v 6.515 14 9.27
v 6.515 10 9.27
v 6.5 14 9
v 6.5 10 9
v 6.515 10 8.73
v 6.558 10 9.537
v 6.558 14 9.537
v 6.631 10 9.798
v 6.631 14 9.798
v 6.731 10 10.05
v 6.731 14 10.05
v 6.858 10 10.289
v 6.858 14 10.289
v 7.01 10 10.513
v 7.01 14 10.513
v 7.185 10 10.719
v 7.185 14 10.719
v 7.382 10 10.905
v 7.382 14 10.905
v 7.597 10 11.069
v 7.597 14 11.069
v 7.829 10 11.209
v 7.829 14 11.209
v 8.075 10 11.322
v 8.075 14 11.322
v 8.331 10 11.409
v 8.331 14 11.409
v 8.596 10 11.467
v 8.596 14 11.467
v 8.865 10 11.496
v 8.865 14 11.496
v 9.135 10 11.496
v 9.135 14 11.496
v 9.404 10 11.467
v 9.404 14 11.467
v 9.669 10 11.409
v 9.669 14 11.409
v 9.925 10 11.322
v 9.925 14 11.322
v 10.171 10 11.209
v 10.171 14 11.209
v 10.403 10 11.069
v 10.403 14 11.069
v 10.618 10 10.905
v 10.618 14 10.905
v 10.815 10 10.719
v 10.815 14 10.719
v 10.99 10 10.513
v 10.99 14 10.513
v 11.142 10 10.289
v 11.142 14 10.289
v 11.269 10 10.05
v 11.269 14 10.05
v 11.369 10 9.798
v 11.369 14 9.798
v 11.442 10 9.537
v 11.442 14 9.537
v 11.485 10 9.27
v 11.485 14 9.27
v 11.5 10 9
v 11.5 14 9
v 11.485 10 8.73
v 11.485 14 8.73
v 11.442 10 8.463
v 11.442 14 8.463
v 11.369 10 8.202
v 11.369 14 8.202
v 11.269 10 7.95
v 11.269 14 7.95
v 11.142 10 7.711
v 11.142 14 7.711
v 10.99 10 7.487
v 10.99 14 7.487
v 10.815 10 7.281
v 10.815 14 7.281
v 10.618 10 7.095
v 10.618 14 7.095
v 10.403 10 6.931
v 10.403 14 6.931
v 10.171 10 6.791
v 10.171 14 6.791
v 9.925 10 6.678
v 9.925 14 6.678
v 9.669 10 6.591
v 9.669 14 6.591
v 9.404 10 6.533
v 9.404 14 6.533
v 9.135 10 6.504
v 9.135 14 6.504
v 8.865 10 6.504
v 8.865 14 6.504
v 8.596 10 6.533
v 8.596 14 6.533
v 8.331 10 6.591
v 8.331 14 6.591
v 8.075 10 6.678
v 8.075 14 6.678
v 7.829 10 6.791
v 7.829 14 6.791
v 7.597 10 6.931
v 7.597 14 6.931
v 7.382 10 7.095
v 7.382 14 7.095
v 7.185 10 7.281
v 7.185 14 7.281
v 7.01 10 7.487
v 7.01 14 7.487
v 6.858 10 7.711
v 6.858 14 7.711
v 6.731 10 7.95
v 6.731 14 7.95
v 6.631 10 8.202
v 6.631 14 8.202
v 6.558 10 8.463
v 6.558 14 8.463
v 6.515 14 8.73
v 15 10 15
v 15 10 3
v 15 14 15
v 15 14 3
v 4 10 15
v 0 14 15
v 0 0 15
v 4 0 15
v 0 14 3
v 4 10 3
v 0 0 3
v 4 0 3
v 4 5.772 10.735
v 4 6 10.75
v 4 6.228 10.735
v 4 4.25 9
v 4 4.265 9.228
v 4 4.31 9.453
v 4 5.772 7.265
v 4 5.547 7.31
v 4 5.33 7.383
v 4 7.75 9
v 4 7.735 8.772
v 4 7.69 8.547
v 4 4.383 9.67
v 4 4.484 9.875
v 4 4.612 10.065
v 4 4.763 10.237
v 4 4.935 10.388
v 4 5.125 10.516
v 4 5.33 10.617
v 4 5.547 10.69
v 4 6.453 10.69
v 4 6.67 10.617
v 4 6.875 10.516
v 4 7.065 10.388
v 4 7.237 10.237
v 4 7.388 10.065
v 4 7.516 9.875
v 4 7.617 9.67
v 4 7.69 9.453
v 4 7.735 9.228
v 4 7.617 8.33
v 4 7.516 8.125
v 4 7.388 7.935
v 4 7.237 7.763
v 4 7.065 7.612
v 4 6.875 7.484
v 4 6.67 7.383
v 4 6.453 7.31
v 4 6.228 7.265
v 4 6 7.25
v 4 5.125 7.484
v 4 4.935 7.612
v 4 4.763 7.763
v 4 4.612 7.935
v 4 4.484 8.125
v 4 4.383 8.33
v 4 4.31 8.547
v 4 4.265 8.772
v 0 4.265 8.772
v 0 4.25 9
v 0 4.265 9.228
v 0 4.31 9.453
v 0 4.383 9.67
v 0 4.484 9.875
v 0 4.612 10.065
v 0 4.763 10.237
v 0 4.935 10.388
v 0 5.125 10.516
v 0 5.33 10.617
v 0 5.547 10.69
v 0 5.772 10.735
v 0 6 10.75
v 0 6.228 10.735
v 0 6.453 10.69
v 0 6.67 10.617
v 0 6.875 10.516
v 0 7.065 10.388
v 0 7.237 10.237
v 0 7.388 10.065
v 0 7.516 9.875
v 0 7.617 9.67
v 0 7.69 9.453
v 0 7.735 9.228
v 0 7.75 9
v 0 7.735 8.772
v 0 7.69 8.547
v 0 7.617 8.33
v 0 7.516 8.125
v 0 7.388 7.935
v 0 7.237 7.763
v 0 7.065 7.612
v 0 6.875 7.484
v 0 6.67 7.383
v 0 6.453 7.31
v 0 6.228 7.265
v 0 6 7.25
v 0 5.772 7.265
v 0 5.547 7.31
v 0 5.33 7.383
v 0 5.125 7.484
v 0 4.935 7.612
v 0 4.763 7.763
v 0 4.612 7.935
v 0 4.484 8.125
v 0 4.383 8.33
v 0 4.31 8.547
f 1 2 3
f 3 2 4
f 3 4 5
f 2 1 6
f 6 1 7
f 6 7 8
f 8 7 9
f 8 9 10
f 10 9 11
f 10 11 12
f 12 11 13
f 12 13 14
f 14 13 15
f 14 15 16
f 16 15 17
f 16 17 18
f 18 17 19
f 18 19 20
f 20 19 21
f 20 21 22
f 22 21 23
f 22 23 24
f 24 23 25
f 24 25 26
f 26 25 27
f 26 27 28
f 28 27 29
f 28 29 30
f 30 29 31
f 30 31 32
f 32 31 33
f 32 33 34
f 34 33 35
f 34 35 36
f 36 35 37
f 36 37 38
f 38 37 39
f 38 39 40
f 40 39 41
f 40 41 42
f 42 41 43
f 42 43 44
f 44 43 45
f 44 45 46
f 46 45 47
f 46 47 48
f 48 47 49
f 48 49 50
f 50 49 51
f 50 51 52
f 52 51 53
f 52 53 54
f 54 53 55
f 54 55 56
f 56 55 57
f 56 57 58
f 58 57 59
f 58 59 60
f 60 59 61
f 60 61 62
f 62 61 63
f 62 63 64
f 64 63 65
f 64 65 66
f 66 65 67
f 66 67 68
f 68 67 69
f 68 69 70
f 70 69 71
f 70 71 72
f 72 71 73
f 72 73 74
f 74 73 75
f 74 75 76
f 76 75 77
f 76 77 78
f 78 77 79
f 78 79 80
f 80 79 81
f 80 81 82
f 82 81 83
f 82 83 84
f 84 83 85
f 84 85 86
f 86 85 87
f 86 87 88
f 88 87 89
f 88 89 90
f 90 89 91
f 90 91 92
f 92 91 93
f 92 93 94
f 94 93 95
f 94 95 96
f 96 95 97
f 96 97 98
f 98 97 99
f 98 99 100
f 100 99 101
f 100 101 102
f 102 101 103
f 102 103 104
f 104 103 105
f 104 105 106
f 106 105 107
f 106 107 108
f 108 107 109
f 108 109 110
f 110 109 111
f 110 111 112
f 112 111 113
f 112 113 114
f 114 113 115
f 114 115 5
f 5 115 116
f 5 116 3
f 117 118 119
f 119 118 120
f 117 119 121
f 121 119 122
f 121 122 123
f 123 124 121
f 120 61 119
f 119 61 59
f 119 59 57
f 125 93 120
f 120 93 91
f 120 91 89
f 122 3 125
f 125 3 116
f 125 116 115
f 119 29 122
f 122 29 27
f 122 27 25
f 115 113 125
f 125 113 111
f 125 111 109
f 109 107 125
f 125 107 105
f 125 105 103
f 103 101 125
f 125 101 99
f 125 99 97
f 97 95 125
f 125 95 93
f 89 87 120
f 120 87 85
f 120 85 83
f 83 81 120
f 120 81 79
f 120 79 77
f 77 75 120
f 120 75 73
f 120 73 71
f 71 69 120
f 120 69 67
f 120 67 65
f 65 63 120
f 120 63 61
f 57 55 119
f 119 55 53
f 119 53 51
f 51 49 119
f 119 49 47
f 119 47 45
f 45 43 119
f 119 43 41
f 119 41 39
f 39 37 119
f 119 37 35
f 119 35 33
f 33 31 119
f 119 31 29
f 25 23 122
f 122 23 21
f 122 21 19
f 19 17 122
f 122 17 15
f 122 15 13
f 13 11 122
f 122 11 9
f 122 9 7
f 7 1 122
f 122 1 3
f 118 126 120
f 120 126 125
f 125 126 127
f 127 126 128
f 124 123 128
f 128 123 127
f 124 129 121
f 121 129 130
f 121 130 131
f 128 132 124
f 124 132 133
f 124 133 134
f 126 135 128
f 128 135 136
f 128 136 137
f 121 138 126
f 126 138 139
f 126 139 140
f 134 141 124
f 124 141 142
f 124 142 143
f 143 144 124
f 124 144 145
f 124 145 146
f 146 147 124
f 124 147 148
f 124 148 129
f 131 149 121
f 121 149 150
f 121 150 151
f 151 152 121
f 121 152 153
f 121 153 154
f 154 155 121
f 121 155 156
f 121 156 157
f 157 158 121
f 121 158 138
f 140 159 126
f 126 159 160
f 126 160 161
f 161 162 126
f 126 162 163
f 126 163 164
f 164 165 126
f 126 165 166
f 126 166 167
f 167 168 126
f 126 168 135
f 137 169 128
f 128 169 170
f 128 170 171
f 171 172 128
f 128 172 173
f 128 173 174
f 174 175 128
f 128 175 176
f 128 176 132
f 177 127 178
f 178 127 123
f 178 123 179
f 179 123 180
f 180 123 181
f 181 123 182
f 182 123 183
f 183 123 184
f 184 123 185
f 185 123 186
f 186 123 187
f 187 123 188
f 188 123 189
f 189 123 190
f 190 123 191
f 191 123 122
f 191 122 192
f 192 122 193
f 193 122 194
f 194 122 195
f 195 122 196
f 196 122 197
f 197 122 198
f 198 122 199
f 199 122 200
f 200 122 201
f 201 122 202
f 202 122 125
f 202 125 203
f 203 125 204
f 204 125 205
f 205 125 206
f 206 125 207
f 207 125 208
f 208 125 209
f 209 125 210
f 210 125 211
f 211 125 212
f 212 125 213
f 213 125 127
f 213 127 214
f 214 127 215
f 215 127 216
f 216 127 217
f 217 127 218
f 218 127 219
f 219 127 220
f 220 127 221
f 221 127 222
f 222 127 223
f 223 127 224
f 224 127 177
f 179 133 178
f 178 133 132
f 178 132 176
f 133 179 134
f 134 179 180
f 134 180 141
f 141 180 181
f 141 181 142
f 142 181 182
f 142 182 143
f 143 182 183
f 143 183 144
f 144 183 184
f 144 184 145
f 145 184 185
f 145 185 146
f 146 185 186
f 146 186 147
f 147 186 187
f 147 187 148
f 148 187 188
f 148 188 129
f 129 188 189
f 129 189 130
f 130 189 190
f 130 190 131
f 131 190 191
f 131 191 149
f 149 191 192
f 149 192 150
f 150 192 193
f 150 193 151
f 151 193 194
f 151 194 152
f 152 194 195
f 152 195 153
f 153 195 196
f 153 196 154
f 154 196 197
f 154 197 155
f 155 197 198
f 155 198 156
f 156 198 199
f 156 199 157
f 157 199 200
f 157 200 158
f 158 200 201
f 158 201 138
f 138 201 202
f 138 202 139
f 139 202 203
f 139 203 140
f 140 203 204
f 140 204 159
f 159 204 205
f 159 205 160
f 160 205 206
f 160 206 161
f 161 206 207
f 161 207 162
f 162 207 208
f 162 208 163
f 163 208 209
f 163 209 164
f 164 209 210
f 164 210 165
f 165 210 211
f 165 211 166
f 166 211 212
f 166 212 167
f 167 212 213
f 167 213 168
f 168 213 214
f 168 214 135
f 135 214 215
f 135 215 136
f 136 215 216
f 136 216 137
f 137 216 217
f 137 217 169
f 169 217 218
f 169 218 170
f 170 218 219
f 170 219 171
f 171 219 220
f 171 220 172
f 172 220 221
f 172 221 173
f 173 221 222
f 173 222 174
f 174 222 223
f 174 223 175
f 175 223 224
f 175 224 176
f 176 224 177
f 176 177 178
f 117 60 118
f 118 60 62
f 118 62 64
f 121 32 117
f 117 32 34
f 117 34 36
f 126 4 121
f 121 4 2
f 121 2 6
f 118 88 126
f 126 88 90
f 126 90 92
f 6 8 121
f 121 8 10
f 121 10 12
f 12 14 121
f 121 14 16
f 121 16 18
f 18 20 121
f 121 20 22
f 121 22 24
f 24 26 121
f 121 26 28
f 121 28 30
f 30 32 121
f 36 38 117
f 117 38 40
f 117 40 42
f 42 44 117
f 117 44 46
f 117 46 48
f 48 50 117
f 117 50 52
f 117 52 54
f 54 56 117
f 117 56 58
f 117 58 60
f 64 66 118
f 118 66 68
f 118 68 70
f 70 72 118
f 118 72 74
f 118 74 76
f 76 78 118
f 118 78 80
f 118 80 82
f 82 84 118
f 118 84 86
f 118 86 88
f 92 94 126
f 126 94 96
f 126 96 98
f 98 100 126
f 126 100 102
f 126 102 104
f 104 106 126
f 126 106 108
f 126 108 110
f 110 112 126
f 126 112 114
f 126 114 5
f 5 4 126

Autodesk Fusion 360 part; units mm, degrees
sketch "Szkic3" plane through (0, 0, 0) normal (0, 0, 1) x (1, 0, 0)
  line L0 (0, 0) -> (4, 0)
  line L1 (4, 0) -> (4, 10)
  line L2 (4, 10) -> (25, 10)
  line L3 (25, 10) -> (25, 14)
  line L4 (25, 14) -> (0, 14)
  line L5 (0, 14) -> (0, 0)
extrude "Wyciągnięcie proste3" add sketch "Szkic3" along normal blind 55
sketch "Szkic4" plane through (4, 0, 0) normal (1, 0, 0) x (0, 1, 0)
  line L0 (0, 0) -> (10, 0)
  line L1 (10, 0) -> (10, 55)
  line L2 (10, 55) -> (0, 55)
  line L3 (0, 55) -> (0, 0)
  circle A0 centre (6, 9) radius 1.75
  circle A1 centre (6, 47) radius 1.75
  dimension "d19" = 38
  dimension "d20" = 3.5
  dimension "d21" = 3.5
extrude "Wyciągnięcie proste4" cut sketch "Szkic4" against normal blind 4 contours A0 | A1
sketch "Szkic5" plane through (25, 0, 0) normal (1, 0, 0) x (0, 1, 0)
  line L0 (10, 0) -> (14, 0)
  line L1 (14, 0) -> (14, 55)
  line L2 (14, 55) -> (10, 55)
  line L3 (10, 55) -> (10, 0)
  line L4 (14, 55) -> (0, 55)
  line L5 (0, 55) -> (0, 15)
  line L6 (0, 15) -> (14, 15)
  line L7 (14, 15) -> (14, 55)
  line L8 (14, 3) -> (0, 3)
  line L9 (0, 3) -> (0, 0)
  line L10 (0, 0) -> (14, 0)
  line L11 (14, 0) -> (14, 3)
extrude "Wyciągnięcie proste5" cut sketch "Szkic5" against normal blind 37 contours L0 L1 L3 L8 L10 L11 | L3 L8 L9 L10 | L3 L4 L5 L6 | L1 L2 L3 L4 L6 L7
sketch "Szkic6" plane through (0, 10, 0) normal (0, -1, 0) x (1, 0, 0)
  line L0 (25, 15) -> (4, 15)
  line L1 (4, 15) -> (4, 3)
  line L2 (4, 3) -> (25, 3)
  line L3 (25, 3) -> (25, 15)
  line L4 (25, 15) -> (15, 15)
  line L5 (15, 15) -> (15, 3)
  line L6 (15, 3) -> (25, 3)
  line L7 (25, 3) -> (25, 15)
  circle A0 centre (9, 9) radius 2.5
  dimension "d26" = 5
extrude "Wyciągnięcie proste6" cut sketch "Szkic6" against normal blind 4 contours L0 L2 L3 L4 L5 L6 L7 | A0
